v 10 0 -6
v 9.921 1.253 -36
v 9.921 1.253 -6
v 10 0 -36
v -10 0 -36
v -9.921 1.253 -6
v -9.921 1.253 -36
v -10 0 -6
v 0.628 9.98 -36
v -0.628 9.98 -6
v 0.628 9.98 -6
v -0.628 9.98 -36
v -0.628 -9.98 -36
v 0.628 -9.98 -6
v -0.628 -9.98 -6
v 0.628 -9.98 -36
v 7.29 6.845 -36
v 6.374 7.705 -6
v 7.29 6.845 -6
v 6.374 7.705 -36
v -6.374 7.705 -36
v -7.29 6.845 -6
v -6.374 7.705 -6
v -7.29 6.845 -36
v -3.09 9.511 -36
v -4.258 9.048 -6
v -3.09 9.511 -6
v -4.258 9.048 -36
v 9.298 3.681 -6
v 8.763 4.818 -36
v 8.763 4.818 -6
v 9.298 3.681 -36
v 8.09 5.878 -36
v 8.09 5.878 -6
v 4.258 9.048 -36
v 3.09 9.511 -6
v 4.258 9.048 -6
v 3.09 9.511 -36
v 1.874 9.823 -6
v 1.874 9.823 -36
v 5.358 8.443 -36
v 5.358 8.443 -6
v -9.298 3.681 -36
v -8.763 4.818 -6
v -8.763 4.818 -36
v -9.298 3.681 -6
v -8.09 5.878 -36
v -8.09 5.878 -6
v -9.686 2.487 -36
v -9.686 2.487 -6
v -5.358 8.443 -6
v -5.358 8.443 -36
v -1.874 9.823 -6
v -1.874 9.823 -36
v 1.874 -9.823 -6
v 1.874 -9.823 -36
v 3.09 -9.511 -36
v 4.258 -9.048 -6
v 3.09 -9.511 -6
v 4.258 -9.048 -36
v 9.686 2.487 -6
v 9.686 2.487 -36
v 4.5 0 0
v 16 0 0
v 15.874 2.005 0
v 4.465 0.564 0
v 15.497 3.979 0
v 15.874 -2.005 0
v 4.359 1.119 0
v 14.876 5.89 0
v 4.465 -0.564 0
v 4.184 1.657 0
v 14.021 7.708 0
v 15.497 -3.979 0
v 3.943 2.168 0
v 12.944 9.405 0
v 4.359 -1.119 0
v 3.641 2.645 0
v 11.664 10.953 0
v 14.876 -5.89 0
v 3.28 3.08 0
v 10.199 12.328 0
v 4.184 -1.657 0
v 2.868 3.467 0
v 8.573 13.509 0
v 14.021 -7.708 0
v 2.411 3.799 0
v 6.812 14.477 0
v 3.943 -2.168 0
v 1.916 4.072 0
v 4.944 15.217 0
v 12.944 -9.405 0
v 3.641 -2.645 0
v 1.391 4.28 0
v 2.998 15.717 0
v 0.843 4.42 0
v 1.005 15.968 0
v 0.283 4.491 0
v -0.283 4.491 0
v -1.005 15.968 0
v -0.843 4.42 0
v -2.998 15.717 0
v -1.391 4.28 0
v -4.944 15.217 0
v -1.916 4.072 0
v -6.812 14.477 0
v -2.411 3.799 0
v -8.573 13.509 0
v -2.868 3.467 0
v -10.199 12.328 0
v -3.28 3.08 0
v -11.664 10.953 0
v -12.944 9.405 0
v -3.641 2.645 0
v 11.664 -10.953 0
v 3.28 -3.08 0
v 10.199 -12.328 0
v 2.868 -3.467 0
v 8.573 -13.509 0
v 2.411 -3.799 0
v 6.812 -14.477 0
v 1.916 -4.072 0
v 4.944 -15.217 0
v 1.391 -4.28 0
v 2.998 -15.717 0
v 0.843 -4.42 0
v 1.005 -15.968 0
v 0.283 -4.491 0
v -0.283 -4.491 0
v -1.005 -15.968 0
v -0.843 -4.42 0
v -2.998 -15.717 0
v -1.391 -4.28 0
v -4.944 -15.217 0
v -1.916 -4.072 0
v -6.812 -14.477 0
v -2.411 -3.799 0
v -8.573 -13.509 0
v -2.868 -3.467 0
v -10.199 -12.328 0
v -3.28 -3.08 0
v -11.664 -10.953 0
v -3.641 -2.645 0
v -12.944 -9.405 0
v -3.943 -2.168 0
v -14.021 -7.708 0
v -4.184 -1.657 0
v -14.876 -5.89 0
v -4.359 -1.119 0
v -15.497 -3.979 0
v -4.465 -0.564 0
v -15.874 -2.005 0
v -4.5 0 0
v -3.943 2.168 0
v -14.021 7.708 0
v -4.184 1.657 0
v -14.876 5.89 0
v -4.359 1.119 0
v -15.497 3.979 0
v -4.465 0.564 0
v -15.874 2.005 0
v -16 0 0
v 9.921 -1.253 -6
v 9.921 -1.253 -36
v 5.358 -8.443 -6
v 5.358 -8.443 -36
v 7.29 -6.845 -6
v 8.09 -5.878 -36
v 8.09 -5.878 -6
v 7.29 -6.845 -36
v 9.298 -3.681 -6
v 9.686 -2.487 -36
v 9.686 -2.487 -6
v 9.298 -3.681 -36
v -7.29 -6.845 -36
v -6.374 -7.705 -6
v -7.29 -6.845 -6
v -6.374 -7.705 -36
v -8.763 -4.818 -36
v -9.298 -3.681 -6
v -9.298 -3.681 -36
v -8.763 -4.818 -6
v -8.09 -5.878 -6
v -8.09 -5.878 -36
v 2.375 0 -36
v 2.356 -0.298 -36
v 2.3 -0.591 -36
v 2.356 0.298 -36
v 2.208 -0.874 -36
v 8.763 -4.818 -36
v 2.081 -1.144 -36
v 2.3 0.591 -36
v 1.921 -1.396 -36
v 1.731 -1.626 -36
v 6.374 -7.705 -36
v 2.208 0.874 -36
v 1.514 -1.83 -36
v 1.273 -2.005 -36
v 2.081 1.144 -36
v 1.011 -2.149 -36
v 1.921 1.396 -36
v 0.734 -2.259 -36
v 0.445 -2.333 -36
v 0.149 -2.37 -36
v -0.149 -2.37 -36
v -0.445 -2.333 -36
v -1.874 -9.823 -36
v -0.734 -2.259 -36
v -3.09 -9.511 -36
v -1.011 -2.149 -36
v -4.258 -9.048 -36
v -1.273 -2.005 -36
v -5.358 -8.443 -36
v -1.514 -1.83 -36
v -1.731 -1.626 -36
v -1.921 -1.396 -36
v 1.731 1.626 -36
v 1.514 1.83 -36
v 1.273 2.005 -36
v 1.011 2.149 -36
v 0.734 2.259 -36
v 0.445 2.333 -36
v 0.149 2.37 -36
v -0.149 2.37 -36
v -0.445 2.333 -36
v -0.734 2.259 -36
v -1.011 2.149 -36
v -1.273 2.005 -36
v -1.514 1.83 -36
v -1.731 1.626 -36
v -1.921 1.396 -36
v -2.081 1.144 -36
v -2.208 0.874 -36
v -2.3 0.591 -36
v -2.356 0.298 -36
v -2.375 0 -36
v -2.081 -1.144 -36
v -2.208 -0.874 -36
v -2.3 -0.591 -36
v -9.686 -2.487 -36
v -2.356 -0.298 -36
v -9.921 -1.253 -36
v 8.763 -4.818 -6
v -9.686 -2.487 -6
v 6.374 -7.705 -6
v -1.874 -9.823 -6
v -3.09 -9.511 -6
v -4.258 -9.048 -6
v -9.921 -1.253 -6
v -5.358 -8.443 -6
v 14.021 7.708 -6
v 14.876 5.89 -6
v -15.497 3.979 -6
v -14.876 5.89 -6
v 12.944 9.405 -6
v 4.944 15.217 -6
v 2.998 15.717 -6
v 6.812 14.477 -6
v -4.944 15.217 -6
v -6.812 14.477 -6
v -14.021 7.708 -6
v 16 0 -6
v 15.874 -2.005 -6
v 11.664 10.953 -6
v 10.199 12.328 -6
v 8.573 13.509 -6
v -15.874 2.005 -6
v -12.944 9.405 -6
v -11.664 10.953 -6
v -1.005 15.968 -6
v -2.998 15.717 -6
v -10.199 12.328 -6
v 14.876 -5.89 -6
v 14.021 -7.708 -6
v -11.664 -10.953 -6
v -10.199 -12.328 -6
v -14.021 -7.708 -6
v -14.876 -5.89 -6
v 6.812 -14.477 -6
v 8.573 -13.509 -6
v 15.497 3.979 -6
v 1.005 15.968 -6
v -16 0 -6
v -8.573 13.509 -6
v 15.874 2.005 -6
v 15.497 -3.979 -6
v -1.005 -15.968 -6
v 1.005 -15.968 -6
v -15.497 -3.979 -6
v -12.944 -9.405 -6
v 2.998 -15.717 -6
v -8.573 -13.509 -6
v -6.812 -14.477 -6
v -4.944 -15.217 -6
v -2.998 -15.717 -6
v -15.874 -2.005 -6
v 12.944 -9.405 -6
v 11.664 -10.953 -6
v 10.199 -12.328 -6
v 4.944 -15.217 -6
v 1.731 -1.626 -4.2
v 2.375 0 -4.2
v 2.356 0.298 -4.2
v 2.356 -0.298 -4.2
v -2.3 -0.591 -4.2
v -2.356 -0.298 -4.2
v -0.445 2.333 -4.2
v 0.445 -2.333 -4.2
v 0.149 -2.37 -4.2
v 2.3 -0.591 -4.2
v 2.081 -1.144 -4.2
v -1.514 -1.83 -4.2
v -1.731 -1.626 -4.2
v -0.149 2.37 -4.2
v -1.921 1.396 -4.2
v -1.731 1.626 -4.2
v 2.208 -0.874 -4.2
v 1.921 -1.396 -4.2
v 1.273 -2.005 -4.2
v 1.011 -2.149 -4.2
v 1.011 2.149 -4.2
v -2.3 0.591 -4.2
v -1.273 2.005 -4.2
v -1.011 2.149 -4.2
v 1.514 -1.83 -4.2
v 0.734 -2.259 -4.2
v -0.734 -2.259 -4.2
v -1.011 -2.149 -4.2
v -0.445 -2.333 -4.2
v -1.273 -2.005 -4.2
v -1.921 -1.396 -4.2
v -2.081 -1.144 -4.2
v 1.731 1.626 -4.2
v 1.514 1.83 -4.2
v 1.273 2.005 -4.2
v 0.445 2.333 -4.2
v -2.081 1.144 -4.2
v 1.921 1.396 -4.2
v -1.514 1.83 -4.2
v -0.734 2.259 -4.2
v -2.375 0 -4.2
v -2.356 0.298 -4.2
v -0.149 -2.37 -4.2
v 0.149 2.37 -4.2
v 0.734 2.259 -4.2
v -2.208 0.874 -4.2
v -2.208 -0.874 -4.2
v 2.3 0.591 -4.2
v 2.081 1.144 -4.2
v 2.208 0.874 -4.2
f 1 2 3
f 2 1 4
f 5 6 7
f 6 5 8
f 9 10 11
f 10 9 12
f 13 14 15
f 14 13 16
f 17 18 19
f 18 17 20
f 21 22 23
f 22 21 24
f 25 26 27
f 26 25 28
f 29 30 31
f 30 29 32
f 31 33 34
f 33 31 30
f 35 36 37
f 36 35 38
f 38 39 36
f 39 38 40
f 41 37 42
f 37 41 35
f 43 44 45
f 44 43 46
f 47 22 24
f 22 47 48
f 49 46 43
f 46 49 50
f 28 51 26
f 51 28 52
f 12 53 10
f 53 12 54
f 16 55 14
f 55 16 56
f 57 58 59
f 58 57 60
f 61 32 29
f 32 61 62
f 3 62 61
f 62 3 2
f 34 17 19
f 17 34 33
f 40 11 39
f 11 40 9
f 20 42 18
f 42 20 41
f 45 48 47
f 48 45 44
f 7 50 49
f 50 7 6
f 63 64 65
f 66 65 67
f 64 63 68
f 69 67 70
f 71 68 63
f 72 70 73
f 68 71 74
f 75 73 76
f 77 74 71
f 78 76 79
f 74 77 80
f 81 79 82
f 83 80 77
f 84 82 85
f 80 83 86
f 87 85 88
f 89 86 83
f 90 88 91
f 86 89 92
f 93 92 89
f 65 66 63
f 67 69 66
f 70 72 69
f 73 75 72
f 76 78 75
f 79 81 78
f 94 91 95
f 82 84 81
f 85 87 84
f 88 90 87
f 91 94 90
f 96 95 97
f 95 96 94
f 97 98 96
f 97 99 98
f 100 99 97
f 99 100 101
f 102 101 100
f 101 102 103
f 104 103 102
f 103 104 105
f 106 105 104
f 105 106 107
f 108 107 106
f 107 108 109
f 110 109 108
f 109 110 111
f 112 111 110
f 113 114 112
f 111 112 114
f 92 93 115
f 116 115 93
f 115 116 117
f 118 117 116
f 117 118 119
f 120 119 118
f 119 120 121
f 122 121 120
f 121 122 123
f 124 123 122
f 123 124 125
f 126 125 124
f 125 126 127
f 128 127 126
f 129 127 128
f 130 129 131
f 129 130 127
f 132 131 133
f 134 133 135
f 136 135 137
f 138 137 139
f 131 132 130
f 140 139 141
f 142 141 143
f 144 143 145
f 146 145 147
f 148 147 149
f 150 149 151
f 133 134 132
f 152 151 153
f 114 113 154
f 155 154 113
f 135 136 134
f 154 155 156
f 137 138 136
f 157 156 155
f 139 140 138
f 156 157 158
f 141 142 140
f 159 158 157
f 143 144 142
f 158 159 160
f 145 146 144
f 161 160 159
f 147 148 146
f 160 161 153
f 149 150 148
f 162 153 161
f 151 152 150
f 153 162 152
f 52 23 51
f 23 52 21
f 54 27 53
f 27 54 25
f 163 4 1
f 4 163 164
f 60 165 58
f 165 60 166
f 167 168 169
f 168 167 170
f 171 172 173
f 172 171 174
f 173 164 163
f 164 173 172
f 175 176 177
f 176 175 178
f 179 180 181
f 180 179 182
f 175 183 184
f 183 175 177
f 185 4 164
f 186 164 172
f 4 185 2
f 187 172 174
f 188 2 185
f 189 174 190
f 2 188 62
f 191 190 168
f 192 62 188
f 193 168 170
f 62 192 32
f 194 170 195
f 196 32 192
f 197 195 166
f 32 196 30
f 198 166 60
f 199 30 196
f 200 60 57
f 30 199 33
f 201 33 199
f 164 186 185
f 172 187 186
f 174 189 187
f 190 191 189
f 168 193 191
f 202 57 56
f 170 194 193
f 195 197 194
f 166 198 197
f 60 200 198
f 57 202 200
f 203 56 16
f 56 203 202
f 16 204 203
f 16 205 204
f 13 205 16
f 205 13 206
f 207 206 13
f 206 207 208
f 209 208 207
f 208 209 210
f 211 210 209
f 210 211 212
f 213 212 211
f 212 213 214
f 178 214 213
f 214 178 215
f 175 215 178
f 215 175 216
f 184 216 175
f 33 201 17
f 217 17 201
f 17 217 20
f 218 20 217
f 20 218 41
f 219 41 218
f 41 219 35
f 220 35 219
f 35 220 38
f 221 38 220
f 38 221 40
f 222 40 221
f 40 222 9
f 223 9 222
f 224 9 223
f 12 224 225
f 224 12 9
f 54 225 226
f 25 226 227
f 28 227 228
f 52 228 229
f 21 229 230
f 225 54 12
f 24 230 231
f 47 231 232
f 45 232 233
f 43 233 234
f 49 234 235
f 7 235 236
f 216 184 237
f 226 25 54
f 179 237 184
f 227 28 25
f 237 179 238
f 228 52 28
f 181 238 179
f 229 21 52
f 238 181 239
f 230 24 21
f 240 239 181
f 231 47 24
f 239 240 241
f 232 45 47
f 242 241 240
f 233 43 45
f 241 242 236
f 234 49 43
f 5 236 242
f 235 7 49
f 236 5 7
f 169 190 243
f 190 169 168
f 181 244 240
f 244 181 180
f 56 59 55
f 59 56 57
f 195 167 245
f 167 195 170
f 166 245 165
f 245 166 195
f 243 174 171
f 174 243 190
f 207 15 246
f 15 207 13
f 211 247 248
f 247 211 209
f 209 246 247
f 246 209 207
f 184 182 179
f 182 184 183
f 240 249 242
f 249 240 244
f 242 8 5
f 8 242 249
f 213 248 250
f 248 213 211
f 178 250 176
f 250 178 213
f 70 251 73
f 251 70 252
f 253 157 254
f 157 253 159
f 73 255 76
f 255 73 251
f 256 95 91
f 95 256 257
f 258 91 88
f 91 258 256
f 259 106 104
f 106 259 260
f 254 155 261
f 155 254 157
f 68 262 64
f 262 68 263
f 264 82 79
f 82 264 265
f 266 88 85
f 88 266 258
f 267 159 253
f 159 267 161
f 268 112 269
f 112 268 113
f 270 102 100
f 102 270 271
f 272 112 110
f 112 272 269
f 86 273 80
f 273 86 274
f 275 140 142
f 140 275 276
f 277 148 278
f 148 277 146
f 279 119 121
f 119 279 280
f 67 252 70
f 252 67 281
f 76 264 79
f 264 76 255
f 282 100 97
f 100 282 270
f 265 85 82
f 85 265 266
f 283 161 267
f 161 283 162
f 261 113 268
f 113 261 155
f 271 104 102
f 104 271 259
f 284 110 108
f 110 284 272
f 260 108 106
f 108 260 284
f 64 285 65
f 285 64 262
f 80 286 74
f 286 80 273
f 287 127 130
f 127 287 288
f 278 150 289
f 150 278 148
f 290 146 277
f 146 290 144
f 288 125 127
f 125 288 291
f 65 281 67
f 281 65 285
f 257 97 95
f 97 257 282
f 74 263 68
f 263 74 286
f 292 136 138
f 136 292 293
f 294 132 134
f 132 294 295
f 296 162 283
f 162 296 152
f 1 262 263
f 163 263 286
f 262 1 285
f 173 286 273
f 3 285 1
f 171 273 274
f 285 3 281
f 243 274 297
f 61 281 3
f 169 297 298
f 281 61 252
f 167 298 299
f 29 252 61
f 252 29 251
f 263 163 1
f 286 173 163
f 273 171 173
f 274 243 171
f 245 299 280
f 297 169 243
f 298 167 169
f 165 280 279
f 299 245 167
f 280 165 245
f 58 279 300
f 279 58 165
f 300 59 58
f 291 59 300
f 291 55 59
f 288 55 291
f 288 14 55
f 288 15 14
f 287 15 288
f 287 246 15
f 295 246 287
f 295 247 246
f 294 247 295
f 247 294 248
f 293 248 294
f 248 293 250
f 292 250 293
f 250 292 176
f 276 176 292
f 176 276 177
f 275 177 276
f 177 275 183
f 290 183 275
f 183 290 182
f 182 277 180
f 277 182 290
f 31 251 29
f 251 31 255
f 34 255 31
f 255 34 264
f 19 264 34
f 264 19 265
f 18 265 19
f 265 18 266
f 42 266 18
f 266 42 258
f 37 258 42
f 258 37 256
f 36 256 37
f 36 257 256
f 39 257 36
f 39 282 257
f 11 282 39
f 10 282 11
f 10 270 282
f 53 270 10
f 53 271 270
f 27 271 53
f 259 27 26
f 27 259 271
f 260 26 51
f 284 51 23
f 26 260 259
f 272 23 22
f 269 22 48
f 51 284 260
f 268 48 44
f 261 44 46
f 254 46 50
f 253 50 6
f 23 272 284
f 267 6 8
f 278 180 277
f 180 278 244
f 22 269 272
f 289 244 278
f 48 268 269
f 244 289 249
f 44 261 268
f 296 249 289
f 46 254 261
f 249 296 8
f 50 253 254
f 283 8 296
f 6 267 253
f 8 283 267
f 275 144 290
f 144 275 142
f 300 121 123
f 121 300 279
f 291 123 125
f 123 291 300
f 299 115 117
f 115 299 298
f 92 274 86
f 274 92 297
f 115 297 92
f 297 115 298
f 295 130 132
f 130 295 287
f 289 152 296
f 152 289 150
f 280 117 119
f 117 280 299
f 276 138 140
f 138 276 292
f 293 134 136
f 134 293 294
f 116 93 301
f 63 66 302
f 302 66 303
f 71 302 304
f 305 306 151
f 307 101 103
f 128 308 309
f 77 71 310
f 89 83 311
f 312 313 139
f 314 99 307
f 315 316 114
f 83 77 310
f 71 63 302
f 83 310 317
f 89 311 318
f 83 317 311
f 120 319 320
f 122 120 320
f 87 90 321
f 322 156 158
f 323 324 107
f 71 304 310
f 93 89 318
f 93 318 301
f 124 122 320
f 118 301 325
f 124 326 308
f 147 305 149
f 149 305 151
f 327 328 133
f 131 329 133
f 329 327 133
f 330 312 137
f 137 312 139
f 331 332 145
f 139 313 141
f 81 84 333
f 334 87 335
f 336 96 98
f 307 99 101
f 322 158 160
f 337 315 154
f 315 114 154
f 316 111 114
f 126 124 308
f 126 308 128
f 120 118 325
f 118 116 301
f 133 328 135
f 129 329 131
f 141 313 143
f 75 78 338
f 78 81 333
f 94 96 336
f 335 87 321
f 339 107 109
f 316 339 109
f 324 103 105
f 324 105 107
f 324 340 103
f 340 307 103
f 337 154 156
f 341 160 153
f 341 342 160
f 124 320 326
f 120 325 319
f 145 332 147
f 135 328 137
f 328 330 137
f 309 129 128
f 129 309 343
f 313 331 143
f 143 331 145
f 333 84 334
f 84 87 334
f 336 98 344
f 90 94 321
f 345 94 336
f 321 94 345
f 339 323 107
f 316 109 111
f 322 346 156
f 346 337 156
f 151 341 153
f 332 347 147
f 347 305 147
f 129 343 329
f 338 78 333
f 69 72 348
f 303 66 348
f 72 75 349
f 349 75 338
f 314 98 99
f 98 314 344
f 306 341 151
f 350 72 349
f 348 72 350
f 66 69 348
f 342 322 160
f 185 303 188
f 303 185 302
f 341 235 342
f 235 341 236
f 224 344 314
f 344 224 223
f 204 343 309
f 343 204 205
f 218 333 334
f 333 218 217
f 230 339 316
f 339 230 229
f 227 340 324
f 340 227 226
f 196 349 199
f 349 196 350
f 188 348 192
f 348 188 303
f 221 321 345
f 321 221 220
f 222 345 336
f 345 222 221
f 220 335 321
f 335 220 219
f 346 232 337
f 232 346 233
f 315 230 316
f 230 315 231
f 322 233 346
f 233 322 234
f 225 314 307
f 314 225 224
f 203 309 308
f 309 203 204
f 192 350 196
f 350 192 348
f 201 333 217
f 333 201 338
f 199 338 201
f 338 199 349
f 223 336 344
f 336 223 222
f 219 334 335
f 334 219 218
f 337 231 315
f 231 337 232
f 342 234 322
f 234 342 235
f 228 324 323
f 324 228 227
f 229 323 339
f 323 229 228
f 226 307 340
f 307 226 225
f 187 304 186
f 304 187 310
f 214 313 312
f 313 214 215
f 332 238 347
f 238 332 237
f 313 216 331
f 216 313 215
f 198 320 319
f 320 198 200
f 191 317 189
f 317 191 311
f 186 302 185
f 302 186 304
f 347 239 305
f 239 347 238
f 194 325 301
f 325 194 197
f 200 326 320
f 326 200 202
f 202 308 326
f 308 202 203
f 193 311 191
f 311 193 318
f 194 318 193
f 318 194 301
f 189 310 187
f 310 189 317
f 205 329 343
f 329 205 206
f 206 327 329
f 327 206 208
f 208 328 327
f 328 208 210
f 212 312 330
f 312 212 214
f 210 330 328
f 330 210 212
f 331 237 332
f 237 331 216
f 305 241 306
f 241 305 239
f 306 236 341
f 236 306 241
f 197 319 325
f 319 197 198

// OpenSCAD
$fn = 50;


difference() {
	union() {
		translate(v = [0, 0, -36.0000000000]) {
			cylinder(h = 36, r = 10.0000000000);
		}
		translate(v = [0, 0, -6.0000000000]) {
			cylinder(h = 6, r = 16.0000000000);
		}
	}
	union() {
		translate(v = [0, 0, 0]) {
			rotate(a = [0, 0, 0]) {
				difference() {
					union() {
						#translate(v = [0, 0, -36.0000000000]) {
							cylinder(h = 36, r = 2.2500000000);
						}
						#translate(v = [0, 0, -4.2000000000]) {
							cylinder(h = 4.2000000000, r = 10.0000000000, r1 = 2.3750000000, r2 = 4.5000000000);
						}
						#translate(v = [0, 0, -36.0000000000]) {
							cylinder(h = 36, r = 2.3750000000);
						}
						#translate(v = [0, 0, -36.0000000000]) {
							cylinder(h = 36, r = 2.2500000000);
						}
					}
					union();
				}
			}
		}
	}
}
